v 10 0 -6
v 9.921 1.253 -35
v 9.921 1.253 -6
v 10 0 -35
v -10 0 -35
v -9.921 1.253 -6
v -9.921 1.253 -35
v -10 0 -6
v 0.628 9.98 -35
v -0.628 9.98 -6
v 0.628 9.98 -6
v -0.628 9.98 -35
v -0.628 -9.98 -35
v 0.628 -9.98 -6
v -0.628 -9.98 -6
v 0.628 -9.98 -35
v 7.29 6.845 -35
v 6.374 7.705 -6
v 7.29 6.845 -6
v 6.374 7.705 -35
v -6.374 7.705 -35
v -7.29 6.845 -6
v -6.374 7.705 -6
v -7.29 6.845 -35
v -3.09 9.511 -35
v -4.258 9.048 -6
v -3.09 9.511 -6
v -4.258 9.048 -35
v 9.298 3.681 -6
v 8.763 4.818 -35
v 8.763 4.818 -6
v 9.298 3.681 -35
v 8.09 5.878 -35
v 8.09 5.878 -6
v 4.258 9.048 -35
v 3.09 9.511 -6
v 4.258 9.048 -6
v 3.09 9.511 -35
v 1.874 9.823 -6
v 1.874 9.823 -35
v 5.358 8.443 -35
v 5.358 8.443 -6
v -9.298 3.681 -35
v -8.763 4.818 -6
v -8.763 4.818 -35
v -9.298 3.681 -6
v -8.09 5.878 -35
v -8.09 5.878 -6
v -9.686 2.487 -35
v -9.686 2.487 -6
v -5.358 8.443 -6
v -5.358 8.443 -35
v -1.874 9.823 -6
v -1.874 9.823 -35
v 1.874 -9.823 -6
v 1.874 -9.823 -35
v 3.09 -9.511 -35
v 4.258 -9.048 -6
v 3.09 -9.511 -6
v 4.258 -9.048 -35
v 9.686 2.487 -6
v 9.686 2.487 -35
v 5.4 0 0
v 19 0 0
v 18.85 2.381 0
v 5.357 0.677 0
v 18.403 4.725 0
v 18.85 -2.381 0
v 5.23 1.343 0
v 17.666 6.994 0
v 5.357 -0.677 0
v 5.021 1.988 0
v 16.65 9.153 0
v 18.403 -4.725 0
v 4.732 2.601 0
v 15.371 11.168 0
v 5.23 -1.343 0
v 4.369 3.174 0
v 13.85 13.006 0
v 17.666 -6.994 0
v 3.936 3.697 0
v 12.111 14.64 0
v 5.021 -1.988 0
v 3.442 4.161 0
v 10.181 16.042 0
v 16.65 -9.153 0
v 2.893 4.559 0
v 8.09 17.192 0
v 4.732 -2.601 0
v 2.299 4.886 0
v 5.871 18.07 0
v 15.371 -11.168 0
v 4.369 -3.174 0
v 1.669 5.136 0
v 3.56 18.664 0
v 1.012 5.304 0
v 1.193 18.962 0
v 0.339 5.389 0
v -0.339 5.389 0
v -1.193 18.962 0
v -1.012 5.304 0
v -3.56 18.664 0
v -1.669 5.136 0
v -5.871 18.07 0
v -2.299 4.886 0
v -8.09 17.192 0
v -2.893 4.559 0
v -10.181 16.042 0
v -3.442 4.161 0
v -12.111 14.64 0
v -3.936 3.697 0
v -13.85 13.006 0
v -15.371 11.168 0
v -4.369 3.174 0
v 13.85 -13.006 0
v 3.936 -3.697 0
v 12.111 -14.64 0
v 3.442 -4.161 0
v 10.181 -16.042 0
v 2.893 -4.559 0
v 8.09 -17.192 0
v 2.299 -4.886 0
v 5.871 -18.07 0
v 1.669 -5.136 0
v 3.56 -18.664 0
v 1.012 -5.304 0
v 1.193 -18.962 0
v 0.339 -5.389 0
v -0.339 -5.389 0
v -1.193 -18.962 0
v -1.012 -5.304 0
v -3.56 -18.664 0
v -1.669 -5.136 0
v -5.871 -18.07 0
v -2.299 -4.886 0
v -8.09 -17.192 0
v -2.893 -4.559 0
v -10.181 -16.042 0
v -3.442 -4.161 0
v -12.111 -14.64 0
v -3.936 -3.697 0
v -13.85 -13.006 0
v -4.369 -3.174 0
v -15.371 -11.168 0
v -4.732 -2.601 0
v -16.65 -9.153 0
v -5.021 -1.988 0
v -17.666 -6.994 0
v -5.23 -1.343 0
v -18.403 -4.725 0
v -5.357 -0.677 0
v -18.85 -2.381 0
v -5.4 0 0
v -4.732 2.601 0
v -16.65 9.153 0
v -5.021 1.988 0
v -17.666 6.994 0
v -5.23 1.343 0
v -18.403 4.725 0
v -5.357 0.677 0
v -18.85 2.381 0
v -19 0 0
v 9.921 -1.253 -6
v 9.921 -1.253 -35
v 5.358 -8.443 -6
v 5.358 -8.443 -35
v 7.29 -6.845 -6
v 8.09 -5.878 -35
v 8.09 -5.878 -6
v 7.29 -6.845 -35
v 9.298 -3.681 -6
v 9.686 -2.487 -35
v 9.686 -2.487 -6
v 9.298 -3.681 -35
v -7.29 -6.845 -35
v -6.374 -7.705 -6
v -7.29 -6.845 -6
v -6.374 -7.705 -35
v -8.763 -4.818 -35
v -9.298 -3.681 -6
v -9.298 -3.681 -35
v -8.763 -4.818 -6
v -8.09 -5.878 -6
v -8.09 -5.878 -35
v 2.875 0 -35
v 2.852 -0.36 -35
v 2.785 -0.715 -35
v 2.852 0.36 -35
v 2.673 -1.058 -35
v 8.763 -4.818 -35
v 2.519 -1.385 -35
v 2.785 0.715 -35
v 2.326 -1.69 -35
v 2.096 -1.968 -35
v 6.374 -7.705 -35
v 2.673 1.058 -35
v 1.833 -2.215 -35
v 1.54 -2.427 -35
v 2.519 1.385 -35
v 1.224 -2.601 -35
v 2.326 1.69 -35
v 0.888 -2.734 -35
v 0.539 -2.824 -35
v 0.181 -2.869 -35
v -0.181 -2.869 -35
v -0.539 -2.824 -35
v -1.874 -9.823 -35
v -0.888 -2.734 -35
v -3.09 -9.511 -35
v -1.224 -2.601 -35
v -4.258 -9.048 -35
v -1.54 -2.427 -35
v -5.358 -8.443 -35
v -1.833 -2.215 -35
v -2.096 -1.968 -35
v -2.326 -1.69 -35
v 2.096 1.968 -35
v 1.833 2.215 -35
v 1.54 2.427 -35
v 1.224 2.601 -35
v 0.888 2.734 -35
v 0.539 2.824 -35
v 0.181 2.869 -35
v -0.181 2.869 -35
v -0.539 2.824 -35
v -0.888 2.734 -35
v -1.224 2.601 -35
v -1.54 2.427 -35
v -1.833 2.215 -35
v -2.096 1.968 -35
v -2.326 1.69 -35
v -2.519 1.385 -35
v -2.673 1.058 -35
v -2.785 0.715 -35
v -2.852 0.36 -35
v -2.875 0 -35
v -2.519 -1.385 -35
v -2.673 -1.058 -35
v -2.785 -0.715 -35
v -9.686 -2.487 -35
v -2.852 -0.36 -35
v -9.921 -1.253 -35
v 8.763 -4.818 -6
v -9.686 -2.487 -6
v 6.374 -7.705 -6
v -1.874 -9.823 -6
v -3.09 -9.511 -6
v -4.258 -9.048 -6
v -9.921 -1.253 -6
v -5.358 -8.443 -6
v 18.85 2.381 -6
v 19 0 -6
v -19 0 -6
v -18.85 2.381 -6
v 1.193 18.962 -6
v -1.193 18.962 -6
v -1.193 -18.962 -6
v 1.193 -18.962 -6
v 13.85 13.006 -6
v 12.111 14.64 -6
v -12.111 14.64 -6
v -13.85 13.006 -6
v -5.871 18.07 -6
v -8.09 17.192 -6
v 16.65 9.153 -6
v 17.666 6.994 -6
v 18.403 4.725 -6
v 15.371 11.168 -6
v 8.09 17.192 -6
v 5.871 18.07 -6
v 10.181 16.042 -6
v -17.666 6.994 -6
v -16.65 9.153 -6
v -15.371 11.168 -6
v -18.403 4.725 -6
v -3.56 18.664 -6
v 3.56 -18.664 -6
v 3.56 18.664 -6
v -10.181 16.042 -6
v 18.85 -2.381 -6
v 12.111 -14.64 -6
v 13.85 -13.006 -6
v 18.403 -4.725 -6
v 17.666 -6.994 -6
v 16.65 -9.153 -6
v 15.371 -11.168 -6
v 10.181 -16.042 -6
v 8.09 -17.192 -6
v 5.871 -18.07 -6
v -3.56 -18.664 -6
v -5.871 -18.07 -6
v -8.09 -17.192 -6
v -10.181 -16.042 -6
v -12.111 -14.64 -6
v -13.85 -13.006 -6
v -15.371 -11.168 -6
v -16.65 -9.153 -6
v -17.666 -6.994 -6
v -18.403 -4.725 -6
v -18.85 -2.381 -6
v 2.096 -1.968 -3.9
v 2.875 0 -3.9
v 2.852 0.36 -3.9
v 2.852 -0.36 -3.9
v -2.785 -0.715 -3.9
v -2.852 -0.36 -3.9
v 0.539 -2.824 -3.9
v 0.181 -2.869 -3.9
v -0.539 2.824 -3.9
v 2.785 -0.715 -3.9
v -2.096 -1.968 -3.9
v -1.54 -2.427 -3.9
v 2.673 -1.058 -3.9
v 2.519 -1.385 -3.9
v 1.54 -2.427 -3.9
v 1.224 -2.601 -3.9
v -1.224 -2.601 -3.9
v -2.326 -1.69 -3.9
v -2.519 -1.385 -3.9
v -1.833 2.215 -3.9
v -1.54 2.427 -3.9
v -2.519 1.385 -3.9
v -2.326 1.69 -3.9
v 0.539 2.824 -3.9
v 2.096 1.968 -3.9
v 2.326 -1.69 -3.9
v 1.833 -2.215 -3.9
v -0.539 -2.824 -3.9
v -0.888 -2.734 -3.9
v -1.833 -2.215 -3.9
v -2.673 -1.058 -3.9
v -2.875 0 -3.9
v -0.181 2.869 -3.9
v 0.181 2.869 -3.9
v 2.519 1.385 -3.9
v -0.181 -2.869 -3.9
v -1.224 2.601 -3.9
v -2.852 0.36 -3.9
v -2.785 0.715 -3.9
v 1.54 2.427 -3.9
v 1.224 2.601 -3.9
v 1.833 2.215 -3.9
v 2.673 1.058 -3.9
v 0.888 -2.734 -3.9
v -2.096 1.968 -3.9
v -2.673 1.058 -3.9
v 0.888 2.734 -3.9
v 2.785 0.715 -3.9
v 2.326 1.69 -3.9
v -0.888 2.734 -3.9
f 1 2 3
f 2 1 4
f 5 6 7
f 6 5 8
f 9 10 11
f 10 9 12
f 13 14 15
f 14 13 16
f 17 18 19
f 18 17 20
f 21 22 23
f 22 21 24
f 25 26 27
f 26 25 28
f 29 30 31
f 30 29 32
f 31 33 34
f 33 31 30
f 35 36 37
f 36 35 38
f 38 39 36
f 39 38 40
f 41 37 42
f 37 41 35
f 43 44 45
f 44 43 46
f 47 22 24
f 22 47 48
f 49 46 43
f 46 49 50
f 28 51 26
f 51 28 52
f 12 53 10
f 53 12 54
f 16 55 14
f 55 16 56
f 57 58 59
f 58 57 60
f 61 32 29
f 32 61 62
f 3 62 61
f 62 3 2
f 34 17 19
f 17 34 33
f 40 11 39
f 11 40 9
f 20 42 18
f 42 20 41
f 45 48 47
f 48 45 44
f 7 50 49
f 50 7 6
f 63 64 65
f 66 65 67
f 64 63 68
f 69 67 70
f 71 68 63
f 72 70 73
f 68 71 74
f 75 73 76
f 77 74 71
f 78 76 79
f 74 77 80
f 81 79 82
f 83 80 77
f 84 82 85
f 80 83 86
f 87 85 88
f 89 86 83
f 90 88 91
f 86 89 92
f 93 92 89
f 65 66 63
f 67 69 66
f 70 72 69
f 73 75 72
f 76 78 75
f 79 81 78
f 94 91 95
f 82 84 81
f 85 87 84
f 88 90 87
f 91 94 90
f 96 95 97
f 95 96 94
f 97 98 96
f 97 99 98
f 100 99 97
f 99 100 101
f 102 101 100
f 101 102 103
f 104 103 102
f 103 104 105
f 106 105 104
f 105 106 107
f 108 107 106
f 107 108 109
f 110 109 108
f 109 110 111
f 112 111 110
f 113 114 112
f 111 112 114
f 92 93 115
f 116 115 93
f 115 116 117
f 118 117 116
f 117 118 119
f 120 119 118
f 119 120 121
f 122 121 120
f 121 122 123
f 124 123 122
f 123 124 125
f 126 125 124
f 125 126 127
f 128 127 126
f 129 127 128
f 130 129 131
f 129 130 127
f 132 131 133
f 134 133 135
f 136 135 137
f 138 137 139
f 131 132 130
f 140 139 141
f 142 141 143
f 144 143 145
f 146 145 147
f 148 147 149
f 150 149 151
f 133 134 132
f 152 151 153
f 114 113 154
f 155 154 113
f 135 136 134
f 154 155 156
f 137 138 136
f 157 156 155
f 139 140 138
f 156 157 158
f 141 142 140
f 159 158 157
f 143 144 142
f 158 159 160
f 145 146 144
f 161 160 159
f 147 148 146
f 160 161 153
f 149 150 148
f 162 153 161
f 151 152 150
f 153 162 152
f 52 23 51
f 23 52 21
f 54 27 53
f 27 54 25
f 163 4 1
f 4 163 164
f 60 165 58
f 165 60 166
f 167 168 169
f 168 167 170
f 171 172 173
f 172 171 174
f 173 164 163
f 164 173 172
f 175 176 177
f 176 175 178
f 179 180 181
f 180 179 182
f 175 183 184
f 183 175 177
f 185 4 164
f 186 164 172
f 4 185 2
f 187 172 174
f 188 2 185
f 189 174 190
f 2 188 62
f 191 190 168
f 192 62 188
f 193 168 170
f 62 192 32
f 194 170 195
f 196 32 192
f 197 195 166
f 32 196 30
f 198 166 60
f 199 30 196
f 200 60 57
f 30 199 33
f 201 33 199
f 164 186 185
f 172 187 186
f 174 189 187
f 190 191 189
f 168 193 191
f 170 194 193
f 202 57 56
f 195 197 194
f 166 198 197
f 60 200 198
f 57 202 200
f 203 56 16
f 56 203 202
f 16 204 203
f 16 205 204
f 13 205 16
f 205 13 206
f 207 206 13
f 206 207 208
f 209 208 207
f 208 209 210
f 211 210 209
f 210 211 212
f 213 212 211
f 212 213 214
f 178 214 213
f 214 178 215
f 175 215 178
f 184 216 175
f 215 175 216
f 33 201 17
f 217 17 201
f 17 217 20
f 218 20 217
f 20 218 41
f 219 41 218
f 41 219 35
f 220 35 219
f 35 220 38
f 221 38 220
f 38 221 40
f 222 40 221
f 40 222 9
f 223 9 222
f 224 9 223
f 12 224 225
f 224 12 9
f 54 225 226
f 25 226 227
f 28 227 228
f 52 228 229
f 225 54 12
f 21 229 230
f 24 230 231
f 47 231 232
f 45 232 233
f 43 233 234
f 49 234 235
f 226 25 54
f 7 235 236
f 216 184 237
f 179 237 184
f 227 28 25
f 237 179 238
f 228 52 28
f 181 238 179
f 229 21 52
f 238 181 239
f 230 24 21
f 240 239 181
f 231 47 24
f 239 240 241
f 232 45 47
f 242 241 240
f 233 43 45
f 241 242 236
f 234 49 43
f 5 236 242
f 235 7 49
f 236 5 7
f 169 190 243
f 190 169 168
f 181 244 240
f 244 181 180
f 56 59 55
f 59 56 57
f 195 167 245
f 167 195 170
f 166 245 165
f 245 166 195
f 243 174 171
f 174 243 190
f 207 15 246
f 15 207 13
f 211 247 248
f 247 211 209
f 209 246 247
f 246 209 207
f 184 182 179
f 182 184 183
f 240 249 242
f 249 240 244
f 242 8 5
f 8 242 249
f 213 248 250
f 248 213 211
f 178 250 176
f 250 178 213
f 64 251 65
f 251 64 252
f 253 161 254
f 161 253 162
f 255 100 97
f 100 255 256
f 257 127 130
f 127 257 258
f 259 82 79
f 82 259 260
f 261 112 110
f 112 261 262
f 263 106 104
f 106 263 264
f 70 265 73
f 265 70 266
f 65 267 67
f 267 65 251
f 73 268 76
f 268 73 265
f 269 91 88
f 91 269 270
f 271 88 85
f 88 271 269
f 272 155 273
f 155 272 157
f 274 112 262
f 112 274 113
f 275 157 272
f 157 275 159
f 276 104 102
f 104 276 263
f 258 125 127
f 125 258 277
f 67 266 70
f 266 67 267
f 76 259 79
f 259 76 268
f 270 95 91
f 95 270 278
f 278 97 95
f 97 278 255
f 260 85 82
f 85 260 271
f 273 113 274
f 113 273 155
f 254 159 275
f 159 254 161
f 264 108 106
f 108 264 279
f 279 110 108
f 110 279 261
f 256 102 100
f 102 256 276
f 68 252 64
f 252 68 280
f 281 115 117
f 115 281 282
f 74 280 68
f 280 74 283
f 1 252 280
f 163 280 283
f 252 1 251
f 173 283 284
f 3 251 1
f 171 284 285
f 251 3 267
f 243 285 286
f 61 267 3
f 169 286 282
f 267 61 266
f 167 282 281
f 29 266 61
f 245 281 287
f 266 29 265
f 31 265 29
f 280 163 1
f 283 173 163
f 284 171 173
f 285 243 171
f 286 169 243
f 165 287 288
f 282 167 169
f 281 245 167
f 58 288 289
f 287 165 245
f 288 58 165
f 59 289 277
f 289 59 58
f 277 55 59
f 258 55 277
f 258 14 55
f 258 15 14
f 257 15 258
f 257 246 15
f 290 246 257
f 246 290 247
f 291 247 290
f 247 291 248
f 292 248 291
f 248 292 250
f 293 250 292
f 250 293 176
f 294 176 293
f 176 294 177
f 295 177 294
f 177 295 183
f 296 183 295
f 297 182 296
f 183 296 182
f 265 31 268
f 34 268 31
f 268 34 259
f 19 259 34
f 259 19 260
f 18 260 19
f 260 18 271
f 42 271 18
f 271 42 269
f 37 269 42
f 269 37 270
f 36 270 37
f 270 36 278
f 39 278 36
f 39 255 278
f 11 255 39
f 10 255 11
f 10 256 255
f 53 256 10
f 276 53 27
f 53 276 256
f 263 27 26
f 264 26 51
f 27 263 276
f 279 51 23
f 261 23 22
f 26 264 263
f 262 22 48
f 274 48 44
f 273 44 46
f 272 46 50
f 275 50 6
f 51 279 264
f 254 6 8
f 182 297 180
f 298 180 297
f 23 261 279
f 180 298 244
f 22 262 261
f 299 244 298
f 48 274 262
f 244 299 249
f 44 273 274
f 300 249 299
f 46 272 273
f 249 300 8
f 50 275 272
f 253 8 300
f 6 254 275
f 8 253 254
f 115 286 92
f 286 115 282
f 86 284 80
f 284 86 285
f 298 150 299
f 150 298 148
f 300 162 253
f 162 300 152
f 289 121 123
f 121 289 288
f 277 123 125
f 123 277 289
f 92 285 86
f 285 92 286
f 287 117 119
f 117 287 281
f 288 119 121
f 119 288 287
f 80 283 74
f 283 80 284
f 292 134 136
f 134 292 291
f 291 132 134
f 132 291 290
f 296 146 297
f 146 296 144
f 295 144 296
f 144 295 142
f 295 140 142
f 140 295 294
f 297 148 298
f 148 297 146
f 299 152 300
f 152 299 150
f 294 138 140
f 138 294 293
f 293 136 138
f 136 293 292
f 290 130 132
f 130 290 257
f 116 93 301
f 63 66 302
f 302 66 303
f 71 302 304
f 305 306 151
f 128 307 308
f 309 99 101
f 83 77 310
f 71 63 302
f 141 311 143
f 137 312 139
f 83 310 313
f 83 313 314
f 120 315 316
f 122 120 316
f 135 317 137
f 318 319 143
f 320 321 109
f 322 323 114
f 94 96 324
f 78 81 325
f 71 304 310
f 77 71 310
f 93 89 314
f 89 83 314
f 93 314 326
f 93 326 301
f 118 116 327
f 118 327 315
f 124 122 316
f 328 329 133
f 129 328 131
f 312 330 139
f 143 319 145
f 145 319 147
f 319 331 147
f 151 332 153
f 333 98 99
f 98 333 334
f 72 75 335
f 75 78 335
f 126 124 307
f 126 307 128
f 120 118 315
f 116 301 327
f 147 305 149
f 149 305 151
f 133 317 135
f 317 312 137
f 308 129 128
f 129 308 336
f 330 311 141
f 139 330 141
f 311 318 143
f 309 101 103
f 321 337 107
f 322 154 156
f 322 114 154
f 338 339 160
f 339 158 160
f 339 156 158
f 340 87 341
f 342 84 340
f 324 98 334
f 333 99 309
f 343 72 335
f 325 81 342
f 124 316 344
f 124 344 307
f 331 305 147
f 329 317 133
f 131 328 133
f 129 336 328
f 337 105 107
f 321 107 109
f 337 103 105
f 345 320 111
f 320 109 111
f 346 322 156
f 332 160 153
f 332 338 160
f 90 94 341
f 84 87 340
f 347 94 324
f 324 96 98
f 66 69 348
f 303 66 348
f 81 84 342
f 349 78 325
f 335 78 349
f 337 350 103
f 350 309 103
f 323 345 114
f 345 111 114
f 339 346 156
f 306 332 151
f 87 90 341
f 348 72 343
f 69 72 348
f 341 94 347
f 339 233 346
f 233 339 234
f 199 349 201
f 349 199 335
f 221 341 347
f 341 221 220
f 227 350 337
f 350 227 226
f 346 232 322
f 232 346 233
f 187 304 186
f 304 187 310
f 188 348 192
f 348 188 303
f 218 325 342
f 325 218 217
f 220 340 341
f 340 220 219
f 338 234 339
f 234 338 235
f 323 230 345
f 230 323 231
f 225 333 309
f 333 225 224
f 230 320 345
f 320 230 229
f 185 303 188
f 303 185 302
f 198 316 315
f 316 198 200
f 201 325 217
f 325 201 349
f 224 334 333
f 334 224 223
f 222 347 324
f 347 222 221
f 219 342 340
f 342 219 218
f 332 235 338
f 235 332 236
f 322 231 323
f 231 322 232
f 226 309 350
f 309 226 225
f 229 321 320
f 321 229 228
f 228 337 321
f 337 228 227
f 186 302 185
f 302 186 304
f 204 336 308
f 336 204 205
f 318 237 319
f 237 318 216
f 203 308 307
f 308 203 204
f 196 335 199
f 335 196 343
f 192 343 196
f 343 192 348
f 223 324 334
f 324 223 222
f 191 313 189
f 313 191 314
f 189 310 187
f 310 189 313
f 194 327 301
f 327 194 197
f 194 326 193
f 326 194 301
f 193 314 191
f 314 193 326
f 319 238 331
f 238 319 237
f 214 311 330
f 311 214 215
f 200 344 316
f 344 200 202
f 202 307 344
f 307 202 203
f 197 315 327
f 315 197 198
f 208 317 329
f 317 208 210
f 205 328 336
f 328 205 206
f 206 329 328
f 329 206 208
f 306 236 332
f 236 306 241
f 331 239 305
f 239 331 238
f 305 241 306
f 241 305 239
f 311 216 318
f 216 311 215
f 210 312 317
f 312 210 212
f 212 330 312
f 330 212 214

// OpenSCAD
$fn = 50;


difference() {
	union() {
		translate(v = [0, 0, -35.0000000000]) {
			cylinder(h = 35, r = 10.0000000000);
		}
		translate(v = [0, 0, -6.0000000000]) {
			cylinder(h = 6, r = 19.0000000000);
		}
	}
	union() {
		translate(v = [0, 0, 0]) {
			rotate(a = [0, 0, 0]) {
				difference() {
					union() {
						#translate(v = [0, 0, -35.0000000000]) {
							cylinder(h = 35, r = 2.6000000000);
						}
						#translate(v = [0, 0, -3.9000000000]) {
							cylinder(h = 3.9000000000, r = 10.0000000000, r1 = 2.8750000000, r2 = 5.4000000000);
						}
						#translate(v = [0, 0, -35.0000000000]) {
							cylinder(h = 35, r = 2.8750000000);
						}
						#translate(v = [0, 0, -35.0000000000]) {
							cylinder(h = 35, r = 2.6000000000);
						}
					}
					union();
				}
			}
		}
	}
}
